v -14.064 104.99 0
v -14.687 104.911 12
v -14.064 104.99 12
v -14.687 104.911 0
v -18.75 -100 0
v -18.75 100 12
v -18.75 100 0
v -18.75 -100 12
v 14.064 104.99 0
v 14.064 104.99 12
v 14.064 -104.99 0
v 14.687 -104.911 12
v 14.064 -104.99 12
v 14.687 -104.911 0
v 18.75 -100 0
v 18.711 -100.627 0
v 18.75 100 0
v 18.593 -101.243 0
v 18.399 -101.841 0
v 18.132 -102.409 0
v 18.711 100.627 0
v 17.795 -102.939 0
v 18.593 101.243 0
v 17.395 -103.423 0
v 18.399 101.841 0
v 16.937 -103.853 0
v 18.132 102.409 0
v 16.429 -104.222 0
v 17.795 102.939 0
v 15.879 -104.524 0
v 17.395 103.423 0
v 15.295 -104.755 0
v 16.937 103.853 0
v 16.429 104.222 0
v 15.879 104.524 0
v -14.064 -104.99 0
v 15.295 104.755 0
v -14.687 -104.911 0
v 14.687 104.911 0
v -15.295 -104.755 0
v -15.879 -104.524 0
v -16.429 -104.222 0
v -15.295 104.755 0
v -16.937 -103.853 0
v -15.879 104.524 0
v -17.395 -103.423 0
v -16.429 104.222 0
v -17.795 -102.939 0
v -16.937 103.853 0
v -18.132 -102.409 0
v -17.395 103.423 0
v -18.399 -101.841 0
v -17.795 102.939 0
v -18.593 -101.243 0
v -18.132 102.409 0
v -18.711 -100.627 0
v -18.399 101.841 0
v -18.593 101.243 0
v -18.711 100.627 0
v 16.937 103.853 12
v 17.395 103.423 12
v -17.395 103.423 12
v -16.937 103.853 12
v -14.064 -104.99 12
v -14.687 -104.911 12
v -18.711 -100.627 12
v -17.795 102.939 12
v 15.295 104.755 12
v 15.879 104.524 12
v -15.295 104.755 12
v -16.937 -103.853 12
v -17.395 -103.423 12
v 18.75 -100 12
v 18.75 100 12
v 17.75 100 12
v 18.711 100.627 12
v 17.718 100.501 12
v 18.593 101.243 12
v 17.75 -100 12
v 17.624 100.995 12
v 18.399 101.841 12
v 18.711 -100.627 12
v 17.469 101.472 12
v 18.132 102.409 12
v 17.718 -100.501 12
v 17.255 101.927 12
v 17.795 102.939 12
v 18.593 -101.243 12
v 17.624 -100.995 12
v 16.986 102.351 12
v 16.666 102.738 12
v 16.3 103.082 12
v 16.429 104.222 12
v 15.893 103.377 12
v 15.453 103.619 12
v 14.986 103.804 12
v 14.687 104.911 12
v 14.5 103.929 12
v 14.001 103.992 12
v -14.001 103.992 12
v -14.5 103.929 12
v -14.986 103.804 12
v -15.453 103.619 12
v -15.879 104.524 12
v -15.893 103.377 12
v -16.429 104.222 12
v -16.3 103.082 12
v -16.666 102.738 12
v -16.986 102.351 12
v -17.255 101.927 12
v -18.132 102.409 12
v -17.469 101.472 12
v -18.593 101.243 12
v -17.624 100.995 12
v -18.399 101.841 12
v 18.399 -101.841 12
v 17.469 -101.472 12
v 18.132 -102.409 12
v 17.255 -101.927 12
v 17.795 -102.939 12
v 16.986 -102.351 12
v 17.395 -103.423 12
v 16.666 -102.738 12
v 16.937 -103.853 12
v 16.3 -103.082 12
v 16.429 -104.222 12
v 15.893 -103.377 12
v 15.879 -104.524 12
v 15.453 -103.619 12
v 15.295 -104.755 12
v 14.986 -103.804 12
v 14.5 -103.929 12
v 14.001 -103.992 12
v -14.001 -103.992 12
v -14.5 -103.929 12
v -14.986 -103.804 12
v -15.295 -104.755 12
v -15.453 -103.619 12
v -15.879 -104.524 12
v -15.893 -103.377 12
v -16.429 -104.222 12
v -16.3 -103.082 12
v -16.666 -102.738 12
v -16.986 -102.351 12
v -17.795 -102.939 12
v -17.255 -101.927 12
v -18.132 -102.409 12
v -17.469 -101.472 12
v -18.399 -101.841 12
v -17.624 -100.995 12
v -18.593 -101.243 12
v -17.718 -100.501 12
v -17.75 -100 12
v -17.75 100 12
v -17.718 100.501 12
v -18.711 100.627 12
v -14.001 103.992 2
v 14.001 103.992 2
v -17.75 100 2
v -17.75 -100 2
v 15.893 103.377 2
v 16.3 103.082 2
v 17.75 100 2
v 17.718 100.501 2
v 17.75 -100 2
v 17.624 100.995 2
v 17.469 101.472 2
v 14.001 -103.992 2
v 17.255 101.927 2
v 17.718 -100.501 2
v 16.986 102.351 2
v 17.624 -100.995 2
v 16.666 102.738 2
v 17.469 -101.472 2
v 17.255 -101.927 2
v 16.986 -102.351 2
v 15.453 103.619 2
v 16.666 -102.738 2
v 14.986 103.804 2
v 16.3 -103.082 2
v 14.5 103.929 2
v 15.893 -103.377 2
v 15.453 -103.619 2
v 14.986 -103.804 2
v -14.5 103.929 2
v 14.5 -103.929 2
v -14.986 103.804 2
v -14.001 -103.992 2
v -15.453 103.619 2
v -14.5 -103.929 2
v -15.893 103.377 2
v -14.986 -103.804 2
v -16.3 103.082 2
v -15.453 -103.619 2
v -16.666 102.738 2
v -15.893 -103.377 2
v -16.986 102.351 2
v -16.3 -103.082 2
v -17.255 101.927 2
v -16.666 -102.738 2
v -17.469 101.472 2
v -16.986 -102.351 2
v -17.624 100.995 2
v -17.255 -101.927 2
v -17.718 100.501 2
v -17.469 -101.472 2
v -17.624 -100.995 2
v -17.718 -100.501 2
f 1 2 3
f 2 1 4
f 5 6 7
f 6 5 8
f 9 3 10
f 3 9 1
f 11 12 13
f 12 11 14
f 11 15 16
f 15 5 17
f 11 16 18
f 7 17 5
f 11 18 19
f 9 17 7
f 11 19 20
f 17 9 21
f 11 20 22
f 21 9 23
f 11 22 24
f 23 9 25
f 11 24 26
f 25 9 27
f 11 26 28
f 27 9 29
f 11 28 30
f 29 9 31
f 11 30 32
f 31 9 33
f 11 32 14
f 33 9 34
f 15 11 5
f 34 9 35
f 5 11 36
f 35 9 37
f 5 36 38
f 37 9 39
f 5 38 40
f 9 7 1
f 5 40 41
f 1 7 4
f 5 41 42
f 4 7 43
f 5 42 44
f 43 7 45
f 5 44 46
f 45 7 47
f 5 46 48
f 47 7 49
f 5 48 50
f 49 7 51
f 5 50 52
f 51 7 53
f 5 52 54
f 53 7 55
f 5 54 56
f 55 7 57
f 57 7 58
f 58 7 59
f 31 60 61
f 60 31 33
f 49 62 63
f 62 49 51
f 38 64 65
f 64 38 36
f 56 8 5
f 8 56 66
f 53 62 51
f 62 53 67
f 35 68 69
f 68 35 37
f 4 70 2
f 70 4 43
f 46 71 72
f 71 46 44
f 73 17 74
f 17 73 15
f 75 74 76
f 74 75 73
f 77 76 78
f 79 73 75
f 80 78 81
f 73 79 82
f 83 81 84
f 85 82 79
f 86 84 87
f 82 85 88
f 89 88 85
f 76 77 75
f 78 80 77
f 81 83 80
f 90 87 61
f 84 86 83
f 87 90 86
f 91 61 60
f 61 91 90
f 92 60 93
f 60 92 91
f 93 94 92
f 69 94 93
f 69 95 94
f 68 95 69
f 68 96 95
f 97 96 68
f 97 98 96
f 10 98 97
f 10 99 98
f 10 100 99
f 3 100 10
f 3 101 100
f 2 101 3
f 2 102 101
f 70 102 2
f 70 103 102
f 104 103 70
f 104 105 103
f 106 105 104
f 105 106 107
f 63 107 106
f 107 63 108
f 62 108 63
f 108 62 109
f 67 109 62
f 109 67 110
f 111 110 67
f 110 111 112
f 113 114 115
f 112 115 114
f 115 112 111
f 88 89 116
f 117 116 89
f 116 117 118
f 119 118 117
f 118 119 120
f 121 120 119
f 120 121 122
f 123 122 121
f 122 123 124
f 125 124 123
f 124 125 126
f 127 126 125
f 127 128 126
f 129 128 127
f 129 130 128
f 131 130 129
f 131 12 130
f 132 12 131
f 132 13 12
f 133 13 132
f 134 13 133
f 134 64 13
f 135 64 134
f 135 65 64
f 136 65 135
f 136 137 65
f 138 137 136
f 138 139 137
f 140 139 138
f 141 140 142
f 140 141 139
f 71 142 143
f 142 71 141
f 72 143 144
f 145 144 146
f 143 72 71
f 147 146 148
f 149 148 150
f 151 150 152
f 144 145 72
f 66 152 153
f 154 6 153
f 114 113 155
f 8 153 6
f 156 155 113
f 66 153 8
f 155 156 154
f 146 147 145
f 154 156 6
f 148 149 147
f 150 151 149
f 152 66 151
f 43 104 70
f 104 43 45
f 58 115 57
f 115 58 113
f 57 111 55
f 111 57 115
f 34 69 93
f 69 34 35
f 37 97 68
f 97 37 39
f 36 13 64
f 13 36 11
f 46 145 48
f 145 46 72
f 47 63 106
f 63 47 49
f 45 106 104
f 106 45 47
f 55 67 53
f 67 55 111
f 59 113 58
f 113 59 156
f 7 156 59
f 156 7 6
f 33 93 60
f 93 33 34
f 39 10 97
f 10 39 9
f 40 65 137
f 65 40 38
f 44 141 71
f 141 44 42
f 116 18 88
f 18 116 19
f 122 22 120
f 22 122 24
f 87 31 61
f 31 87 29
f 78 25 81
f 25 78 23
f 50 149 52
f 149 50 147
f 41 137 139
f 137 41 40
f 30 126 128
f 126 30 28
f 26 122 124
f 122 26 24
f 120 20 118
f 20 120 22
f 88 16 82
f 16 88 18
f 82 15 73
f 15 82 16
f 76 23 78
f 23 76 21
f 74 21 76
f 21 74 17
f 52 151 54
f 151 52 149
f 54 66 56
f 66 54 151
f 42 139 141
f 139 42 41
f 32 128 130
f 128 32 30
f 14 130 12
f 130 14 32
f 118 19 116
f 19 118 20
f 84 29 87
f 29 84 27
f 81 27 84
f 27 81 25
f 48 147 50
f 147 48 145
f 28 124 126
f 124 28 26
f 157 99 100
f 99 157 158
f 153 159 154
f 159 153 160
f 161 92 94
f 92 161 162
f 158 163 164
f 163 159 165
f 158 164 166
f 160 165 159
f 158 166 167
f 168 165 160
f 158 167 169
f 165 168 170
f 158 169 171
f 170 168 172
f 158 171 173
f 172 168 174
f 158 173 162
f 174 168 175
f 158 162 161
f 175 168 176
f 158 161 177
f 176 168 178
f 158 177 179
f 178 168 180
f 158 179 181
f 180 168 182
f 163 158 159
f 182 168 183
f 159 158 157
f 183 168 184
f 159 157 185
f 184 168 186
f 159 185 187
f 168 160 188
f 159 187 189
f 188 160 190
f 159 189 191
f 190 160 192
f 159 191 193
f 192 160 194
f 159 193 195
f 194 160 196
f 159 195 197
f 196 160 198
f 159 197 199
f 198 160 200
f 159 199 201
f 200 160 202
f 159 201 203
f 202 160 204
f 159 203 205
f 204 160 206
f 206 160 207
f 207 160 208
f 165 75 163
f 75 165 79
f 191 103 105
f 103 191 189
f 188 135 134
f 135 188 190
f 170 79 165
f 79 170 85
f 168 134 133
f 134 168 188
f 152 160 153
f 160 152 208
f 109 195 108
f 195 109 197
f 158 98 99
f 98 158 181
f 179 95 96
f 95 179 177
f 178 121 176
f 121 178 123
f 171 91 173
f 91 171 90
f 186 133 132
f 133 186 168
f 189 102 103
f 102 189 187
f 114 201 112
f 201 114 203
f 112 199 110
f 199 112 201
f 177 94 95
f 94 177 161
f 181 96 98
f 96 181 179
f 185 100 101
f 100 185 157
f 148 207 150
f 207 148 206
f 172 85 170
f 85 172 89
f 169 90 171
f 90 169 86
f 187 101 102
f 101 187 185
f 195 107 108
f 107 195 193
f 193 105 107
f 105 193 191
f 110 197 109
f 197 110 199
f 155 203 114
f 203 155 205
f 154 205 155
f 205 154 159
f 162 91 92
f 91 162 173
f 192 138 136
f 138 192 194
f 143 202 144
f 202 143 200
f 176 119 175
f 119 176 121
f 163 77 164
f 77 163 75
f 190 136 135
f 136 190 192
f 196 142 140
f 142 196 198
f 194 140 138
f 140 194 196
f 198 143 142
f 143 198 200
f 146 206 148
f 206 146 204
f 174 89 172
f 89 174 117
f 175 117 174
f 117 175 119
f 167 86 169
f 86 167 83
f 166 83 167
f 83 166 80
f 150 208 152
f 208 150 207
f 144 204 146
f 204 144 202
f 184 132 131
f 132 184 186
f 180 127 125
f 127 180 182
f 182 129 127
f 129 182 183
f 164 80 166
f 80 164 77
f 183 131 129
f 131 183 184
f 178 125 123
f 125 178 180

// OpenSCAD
$fn = 50;


difference() {
	union() {
		hull() {
			translate(v = [-13.7500000000, 100.0000000000, 0]) {
				cylinder(h = 12, r = 5);
			}
			translate(v = [13.7500000000, 100.0000000000, 0]) {
				cylinder(h = 12, r = 5);
			}
			translate(v = [-13.7500000000, -100.0000000000, 0]) {
				cylinder(h = 12, r = 5);
			}
			translate(v = [13.7500000000, -100.0000000000, 0]) {
				cylinder(h = 12, r = 5);
			}
		}
	}
	union() {
		translate(v = [0, 0, 2]) {
			hull() {
				translate(v = [-13.7500000000, 100.0000000000, 0]) {
					cylinder(h = 10, r = 4);
				}
				translate(v = [13.7500000000, 100.0000000000, 0]) {
					cylinder(h = 10, r = 4);
				}
				translate(v = [-13.7500000000, -100.0000000000, 0]) {
					cylinder(h = 10, r = 4);
				}
				translate(v = [13.7500000000, -100.0000000000, 0]) {
					cylinder(h = 10, r = 4);
				}
			}
		}
	}
}
